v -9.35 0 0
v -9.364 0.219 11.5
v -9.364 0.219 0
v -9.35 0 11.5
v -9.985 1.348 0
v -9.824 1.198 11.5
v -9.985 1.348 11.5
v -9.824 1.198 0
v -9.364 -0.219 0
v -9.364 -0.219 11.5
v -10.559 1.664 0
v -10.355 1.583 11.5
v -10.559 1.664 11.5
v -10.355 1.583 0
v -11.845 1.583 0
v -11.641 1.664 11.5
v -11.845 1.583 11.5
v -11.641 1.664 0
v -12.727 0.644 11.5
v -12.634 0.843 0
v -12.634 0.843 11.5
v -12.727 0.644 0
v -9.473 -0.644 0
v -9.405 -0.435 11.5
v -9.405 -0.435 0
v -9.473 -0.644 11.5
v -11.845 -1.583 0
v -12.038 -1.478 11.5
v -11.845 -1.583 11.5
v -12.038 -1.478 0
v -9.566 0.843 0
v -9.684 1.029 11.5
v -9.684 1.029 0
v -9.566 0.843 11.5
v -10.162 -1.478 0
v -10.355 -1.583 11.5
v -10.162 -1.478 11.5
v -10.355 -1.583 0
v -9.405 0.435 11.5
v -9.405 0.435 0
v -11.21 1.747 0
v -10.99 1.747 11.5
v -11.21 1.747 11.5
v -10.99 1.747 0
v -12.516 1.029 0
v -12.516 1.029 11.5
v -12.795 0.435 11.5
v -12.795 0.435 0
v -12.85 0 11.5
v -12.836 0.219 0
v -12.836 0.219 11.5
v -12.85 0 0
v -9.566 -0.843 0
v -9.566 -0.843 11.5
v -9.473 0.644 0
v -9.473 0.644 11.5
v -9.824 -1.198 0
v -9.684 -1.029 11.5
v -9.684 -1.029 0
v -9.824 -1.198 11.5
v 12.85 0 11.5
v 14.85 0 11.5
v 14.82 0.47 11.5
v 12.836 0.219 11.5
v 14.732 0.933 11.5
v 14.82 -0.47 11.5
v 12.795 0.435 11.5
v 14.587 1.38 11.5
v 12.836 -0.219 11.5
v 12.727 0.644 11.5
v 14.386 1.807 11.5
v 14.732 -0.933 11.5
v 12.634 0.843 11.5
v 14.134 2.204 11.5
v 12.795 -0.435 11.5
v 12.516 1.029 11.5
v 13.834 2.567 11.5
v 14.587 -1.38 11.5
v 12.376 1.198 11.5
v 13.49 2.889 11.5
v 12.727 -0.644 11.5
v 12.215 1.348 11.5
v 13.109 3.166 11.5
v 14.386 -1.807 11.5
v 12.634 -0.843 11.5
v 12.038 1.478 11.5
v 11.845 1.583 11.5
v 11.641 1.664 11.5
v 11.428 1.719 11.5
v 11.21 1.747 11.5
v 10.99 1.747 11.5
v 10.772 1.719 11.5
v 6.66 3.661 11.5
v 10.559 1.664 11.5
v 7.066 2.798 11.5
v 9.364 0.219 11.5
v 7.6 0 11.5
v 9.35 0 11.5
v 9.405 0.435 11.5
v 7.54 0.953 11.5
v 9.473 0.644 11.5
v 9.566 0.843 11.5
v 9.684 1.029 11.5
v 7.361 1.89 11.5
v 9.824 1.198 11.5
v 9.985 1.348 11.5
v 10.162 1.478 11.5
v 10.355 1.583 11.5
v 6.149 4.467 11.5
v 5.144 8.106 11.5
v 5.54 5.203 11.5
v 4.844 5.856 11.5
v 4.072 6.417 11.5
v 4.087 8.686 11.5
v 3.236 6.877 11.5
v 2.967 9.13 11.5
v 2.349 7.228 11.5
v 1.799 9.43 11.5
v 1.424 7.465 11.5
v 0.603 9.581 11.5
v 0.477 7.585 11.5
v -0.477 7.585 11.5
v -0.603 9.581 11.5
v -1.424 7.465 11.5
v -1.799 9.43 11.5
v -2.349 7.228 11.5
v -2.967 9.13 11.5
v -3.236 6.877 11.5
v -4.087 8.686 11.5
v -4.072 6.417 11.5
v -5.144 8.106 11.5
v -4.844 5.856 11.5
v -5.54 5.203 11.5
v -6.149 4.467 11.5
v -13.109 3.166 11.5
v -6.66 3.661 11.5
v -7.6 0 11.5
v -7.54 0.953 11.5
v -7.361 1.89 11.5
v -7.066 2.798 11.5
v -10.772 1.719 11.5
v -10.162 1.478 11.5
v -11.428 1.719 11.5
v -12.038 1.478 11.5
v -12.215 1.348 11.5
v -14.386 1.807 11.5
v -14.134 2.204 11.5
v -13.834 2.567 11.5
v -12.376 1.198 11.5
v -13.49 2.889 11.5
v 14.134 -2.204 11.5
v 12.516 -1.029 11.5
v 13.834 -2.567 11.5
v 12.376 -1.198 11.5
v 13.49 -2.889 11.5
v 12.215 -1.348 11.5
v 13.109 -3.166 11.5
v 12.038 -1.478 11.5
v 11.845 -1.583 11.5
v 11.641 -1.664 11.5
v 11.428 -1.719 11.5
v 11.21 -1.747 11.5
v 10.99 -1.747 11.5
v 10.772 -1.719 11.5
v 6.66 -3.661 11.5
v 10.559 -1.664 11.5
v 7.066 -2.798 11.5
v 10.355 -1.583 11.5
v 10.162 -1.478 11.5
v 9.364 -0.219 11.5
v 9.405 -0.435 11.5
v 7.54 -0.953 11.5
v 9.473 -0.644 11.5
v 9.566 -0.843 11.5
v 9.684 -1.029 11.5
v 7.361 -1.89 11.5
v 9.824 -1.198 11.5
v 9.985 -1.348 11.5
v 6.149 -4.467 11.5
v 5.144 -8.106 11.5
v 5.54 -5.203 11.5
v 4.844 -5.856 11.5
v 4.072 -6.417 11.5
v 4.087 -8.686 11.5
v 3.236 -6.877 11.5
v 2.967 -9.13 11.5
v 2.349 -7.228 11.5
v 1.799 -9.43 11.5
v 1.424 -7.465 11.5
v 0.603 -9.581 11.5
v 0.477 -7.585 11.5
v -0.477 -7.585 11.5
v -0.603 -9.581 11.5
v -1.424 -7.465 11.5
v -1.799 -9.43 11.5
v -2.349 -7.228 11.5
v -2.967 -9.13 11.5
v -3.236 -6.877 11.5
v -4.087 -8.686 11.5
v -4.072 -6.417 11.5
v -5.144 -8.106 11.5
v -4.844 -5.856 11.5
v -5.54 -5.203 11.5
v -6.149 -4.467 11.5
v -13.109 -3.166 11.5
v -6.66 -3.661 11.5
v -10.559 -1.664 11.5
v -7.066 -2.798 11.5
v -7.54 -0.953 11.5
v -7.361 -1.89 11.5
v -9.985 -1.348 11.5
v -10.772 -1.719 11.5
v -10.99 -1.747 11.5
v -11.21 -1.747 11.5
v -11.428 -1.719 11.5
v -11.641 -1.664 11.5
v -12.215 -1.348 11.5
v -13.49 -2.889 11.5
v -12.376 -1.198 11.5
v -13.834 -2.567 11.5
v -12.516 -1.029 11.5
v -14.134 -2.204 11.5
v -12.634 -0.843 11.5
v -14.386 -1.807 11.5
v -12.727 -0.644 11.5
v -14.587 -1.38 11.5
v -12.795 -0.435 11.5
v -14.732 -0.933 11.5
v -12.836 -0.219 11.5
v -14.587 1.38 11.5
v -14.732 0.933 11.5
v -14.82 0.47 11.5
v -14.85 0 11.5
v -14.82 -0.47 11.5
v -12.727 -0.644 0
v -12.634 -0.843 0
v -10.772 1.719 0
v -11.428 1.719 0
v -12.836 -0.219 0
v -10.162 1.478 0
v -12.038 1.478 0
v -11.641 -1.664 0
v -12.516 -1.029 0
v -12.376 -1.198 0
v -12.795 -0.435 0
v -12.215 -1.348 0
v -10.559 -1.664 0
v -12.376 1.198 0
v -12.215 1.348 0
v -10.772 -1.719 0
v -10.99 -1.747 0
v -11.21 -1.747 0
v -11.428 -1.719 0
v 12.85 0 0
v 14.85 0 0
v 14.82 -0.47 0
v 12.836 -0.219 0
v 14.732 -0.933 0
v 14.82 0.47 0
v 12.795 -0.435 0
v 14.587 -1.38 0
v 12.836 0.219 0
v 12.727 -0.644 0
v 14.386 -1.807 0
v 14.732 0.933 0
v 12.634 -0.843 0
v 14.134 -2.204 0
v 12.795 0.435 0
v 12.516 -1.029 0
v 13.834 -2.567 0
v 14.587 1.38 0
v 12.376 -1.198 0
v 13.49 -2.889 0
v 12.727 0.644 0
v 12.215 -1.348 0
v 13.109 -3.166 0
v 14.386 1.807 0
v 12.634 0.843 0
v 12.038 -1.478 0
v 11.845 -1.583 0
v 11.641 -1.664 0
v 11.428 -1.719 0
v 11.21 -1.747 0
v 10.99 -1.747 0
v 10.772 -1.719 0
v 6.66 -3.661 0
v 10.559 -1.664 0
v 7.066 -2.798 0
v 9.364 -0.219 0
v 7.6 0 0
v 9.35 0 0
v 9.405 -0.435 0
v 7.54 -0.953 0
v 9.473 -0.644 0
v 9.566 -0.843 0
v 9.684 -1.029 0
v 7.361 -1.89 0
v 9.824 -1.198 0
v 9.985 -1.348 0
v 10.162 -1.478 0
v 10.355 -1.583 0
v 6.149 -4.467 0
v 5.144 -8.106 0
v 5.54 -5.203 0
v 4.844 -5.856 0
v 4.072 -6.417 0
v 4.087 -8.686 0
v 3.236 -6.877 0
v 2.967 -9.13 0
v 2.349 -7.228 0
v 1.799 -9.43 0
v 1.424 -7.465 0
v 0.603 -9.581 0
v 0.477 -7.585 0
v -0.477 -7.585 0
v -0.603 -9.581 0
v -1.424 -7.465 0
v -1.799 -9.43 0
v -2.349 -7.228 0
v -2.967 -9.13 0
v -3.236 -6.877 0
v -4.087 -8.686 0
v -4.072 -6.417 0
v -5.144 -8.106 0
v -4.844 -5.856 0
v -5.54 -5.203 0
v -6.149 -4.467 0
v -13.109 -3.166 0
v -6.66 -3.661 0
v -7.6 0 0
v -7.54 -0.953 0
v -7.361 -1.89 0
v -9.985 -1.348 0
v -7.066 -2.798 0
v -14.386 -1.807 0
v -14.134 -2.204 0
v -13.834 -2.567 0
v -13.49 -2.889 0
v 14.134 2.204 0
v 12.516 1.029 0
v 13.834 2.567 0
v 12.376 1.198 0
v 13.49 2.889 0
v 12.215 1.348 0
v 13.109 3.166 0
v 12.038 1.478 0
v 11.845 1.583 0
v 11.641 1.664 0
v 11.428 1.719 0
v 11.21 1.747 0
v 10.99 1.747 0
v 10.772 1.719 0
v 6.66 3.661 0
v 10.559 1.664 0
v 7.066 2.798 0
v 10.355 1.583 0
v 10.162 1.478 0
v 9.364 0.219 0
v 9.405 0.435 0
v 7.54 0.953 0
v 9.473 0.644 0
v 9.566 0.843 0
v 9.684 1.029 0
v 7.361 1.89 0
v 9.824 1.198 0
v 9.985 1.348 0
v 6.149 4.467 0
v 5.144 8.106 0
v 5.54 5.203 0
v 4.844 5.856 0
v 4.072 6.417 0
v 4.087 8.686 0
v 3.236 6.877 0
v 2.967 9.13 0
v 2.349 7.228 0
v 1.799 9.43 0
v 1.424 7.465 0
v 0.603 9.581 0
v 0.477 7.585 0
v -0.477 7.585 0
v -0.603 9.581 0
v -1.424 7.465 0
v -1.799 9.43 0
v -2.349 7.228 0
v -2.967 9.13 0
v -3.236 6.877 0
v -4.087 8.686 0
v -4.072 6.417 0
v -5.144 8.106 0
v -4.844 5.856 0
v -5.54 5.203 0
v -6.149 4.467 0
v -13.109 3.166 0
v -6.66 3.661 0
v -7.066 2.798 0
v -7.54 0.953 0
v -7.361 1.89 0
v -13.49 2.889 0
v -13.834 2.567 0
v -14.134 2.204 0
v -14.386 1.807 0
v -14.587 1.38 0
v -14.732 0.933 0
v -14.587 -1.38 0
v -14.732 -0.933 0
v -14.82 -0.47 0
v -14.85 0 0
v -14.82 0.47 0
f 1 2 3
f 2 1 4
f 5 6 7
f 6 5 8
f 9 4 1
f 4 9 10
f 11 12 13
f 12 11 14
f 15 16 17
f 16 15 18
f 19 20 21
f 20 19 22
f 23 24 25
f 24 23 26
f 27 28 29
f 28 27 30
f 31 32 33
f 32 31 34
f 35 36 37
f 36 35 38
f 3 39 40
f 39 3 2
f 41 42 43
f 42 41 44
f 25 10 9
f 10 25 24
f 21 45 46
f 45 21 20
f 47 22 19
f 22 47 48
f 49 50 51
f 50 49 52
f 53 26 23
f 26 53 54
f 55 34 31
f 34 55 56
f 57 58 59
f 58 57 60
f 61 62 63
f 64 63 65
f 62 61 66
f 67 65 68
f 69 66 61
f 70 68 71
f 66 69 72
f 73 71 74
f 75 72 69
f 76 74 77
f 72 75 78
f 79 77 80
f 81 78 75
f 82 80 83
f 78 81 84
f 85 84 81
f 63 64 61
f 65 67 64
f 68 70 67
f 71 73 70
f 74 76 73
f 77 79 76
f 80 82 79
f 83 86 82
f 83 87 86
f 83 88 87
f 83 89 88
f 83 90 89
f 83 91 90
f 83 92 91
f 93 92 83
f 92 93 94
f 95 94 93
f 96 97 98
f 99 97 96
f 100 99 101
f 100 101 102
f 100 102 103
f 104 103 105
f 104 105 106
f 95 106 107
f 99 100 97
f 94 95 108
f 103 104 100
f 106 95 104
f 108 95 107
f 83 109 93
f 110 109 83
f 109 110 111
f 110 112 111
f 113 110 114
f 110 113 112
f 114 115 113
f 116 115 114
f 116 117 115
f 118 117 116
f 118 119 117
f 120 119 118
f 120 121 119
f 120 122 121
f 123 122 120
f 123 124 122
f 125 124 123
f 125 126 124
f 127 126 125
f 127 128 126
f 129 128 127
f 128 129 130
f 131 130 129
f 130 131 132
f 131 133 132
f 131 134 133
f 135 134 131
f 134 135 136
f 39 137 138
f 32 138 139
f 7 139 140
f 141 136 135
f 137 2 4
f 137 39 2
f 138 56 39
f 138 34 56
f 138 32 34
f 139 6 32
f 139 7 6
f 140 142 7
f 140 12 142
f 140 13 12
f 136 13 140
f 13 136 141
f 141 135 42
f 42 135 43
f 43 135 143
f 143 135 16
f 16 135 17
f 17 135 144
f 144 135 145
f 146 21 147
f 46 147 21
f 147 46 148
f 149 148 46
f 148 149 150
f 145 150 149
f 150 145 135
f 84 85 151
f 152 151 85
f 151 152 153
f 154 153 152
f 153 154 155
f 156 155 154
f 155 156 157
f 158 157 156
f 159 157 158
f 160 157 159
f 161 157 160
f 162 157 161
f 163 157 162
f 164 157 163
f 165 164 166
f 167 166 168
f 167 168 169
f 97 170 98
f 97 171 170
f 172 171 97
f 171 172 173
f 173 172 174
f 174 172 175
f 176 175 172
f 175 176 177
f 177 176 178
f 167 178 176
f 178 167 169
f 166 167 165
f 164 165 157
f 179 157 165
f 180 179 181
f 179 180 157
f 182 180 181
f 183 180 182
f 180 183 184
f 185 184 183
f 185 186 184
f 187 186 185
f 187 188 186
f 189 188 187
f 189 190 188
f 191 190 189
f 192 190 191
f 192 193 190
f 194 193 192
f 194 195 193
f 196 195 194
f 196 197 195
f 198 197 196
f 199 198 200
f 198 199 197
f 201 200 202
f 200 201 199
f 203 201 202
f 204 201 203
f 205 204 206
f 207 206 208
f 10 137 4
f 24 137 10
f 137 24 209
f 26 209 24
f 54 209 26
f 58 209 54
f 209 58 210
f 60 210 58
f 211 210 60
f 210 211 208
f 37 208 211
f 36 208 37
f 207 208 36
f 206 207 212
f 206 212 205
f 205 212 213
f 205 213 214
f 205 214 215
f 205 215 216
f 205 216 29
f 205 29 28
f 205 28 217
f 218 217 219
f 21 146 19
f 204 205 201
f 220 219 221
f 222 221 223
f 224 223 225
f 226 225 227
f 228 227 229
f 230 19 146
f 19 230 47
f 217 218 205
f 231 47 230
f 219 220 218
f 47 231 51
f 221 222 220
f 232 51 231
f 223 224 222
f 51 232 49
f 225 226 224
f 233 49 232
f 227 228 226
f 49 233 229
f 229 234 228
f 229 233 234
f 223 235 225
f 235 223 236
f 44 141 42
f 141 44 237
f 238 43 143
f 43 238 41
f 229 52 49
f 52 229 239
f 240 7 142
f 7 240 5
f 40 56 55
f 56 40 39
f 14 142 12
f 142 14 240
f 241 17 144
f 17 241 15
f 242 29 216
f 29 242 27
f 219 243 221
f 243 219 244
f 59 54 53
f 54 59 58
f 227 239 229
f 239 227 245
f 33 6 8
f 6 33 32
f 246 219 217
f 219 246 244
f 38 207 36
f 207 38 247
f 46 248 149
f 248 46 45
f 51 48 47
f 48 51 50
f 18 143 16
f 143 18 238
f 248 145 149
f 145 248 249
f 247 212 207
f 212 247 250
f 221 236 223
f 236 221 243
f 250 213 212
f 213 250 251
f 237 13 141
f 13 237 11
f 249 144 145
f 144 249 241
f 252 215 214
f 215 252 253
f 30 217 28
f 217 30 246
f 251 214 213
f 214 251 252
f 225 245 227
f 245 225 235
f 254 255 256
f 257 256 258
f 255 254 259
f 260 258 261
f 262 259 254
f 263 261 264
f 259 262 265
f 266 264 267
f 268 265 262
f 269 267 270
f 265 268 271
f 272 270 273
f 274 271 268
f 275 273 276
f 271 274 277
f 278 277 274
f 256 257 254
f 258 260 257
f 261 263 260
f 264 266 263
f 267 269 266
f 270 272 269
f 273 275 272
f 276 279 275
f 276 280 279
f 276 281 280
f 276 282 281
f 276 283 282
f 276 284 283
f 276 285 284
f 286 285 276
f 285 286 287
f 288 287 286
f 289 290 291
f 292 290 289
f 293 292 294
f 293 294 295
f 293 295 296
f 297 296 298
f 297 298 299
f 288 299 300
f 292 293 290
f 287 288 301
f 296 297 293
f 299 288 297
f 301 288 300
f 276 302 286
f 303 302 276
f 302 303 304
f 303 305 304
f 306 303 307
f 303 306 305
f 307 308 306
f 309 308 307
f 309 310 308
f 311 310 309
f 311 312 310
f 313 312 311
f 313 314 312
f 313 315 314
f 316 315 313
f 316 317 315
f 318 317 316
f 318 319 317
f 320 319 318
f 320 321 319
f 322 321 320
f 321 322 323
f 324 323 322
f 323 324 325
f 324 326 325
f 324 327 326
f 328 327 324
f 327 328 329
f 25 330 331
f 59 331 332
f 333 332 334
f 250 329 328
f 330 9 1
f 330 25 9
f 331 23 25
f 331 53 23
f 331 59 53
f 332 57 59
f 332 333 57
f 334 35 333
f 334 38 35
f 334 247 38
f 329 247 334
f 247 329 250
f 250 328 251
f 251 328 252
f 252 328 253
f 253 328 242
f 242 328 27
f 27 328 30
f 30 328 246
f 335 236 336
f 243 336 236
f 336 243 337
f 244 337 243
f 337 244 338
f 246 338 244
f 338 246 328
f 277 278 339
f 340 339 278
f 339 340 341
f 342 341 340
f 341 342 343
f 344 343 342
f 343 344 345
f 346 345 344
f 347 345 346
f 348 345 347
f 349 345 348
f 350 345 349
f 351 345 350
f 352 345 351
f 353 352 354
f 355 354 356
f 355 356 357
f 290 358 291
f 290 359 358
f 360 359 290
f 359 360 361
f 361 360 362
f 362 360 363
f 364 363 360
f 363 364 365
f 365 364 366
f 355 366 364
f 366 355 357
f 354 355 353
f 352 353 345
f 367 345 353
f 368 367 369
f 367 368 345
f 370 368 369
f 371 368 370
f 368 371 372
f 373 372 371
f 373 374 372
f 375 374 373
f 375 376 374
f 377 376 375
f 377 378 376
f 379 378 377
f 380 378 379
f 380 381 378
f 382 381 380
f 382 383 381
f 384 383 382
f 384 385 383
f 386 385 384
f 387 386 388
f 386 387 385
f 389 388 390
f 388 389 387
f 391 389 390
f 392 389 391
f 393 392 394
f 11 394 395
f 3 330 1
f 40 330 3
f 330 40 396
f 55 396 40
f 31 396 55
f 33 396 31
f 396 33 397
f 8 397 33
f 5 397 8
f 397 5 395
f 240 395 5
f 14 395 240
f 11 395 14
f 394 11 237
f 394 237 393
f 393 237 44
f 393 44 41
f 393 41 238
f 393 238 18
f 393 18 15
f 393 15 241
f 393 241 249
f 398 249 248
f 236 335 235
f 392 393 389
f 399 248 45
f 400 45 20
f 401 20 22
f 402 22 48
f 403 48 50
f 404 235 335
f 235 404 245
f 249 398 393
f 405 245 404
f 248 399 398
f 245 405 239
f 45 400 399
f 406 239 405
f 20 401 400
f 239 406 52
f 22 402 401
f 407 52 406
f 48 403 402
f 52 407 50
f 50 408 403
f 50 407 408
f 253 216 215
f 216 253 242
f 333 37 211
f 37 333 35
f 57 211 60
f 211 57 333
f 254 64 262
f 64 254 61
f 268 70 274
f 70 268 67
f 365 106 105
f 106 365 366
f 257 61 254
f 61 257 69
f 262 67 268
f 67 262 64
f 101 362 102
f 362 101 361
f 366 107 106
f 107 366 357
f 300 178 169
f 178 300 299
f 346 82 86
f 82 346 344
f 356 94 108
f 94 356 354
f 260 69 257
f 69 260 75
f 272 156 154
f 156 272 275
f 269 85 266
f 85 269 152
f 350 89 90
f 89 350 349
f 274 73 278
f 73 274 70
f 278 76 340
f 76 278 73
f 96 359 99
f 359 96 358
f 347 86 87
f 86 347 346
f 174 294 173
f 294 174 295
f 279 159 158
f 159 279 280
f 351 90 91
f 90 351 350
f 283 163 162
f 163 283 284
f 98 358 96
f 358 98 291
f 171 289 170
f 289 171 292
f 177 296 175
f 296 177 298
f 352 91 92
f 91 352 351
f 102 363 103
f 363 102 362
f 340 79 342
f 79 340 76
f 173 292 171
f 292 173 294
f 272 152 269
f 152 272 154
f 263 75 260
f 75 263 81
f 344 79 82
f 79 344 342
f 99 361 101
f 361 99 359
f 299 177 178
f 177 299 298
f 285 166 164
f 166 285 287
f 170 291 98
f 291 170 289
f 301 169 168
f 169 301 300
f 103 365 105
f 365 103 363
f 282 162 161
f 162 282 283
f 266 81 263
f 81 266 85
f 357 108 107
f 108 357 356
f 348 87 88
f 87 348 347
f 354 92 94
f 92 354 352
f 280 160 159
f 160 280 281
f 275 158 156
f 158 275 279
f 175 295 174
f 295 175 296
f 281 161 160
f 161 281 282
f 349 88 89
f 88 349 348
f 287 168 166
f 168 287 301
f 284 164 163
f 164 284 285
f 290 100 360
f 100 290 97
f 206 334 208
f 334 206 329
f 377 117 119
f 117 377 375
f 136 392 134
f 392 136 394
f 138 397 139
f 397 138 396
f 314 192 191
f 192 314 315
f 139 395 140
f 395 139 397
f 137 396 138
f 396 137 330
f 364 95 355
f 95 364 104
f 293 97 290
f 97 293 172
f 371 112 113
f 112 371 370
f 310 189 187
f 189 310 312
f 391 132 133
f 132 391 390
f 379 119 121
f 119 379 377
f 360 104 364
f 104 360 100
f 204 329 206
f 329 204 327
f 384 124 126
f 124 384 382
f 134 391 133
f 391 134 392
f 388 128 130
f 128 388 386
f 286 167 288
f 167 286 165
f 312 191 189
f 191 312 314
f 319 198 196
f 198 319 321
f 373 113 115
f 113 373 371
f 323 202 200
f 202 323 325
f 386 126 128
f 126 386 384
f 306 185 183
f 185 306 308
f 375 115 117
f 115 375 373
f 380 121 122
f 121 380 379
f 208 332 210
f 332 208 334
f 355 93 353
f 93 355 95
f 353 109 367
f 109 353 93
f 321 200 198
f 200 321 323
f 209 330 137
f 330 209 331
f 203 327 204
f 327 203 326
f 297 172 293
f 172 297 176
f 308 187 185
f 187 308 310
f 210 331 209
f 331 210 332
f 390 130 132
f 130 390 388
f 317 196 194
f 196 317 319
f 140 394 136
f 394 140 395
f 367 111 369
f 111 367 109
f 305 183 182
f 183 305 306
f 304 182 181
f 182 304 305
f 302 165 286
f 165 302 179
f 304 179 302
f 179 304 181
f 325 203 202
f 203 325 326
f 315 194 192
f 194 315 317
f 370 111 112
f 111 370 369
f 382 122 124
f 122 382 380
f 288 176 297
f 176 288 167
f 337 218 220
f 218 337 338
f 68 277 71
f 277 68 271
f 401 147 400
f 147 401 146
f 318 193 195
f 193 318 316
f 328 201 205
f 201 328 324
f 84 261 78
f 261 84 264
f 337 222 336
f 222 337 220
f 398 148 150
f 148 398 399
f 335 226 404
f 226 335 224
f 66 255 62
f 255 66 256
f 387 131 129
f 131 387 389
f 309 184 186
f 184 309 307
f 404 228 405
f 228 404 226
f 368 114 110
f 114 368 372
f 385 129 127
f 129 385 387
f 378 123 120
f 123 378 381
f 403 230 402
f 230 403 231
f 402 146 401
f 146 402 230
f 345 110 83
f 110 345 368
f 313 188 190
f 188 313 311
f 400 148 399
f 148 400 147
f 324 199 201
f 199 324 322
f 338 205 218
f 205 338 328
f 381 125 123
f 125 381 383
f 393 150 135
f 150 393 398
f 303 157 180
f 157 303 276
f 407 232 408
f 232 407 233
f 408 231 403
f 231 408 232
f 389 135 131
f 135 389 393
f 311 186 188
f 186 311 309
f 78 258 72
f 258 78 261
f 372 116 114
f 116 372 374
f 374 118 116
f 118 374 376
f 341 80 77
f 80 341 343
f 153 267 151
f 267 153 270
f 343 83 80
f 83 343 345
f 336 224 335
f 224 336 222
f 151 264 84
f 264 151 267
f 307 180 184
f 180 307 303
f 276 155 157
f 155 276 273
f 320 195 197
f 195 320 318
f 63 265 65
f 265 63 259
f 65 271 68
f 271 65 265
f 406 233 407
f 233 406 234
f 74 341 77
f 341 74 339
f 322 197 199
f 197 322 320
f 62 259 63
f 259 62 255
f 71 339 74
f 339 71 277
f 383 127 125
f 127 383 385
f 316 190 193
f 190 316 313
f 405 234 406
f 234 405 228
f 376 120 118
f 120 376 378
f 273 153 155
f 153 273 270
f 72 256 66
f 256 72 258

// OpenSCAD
$fn=50;
height = 11.5;


module holes(extra_diameter=0) {
    cylinder(d=15.2+extra_diameter, h=height);
    for (x = [-11.1, +11.1])
    translate([x,0,0])
    cylinder(d=3.5+extra_diameter, h=height);
}

module spacer() {
    difference() {
      hull() holes(4);
      holes(0);
    }
}

spacer();
